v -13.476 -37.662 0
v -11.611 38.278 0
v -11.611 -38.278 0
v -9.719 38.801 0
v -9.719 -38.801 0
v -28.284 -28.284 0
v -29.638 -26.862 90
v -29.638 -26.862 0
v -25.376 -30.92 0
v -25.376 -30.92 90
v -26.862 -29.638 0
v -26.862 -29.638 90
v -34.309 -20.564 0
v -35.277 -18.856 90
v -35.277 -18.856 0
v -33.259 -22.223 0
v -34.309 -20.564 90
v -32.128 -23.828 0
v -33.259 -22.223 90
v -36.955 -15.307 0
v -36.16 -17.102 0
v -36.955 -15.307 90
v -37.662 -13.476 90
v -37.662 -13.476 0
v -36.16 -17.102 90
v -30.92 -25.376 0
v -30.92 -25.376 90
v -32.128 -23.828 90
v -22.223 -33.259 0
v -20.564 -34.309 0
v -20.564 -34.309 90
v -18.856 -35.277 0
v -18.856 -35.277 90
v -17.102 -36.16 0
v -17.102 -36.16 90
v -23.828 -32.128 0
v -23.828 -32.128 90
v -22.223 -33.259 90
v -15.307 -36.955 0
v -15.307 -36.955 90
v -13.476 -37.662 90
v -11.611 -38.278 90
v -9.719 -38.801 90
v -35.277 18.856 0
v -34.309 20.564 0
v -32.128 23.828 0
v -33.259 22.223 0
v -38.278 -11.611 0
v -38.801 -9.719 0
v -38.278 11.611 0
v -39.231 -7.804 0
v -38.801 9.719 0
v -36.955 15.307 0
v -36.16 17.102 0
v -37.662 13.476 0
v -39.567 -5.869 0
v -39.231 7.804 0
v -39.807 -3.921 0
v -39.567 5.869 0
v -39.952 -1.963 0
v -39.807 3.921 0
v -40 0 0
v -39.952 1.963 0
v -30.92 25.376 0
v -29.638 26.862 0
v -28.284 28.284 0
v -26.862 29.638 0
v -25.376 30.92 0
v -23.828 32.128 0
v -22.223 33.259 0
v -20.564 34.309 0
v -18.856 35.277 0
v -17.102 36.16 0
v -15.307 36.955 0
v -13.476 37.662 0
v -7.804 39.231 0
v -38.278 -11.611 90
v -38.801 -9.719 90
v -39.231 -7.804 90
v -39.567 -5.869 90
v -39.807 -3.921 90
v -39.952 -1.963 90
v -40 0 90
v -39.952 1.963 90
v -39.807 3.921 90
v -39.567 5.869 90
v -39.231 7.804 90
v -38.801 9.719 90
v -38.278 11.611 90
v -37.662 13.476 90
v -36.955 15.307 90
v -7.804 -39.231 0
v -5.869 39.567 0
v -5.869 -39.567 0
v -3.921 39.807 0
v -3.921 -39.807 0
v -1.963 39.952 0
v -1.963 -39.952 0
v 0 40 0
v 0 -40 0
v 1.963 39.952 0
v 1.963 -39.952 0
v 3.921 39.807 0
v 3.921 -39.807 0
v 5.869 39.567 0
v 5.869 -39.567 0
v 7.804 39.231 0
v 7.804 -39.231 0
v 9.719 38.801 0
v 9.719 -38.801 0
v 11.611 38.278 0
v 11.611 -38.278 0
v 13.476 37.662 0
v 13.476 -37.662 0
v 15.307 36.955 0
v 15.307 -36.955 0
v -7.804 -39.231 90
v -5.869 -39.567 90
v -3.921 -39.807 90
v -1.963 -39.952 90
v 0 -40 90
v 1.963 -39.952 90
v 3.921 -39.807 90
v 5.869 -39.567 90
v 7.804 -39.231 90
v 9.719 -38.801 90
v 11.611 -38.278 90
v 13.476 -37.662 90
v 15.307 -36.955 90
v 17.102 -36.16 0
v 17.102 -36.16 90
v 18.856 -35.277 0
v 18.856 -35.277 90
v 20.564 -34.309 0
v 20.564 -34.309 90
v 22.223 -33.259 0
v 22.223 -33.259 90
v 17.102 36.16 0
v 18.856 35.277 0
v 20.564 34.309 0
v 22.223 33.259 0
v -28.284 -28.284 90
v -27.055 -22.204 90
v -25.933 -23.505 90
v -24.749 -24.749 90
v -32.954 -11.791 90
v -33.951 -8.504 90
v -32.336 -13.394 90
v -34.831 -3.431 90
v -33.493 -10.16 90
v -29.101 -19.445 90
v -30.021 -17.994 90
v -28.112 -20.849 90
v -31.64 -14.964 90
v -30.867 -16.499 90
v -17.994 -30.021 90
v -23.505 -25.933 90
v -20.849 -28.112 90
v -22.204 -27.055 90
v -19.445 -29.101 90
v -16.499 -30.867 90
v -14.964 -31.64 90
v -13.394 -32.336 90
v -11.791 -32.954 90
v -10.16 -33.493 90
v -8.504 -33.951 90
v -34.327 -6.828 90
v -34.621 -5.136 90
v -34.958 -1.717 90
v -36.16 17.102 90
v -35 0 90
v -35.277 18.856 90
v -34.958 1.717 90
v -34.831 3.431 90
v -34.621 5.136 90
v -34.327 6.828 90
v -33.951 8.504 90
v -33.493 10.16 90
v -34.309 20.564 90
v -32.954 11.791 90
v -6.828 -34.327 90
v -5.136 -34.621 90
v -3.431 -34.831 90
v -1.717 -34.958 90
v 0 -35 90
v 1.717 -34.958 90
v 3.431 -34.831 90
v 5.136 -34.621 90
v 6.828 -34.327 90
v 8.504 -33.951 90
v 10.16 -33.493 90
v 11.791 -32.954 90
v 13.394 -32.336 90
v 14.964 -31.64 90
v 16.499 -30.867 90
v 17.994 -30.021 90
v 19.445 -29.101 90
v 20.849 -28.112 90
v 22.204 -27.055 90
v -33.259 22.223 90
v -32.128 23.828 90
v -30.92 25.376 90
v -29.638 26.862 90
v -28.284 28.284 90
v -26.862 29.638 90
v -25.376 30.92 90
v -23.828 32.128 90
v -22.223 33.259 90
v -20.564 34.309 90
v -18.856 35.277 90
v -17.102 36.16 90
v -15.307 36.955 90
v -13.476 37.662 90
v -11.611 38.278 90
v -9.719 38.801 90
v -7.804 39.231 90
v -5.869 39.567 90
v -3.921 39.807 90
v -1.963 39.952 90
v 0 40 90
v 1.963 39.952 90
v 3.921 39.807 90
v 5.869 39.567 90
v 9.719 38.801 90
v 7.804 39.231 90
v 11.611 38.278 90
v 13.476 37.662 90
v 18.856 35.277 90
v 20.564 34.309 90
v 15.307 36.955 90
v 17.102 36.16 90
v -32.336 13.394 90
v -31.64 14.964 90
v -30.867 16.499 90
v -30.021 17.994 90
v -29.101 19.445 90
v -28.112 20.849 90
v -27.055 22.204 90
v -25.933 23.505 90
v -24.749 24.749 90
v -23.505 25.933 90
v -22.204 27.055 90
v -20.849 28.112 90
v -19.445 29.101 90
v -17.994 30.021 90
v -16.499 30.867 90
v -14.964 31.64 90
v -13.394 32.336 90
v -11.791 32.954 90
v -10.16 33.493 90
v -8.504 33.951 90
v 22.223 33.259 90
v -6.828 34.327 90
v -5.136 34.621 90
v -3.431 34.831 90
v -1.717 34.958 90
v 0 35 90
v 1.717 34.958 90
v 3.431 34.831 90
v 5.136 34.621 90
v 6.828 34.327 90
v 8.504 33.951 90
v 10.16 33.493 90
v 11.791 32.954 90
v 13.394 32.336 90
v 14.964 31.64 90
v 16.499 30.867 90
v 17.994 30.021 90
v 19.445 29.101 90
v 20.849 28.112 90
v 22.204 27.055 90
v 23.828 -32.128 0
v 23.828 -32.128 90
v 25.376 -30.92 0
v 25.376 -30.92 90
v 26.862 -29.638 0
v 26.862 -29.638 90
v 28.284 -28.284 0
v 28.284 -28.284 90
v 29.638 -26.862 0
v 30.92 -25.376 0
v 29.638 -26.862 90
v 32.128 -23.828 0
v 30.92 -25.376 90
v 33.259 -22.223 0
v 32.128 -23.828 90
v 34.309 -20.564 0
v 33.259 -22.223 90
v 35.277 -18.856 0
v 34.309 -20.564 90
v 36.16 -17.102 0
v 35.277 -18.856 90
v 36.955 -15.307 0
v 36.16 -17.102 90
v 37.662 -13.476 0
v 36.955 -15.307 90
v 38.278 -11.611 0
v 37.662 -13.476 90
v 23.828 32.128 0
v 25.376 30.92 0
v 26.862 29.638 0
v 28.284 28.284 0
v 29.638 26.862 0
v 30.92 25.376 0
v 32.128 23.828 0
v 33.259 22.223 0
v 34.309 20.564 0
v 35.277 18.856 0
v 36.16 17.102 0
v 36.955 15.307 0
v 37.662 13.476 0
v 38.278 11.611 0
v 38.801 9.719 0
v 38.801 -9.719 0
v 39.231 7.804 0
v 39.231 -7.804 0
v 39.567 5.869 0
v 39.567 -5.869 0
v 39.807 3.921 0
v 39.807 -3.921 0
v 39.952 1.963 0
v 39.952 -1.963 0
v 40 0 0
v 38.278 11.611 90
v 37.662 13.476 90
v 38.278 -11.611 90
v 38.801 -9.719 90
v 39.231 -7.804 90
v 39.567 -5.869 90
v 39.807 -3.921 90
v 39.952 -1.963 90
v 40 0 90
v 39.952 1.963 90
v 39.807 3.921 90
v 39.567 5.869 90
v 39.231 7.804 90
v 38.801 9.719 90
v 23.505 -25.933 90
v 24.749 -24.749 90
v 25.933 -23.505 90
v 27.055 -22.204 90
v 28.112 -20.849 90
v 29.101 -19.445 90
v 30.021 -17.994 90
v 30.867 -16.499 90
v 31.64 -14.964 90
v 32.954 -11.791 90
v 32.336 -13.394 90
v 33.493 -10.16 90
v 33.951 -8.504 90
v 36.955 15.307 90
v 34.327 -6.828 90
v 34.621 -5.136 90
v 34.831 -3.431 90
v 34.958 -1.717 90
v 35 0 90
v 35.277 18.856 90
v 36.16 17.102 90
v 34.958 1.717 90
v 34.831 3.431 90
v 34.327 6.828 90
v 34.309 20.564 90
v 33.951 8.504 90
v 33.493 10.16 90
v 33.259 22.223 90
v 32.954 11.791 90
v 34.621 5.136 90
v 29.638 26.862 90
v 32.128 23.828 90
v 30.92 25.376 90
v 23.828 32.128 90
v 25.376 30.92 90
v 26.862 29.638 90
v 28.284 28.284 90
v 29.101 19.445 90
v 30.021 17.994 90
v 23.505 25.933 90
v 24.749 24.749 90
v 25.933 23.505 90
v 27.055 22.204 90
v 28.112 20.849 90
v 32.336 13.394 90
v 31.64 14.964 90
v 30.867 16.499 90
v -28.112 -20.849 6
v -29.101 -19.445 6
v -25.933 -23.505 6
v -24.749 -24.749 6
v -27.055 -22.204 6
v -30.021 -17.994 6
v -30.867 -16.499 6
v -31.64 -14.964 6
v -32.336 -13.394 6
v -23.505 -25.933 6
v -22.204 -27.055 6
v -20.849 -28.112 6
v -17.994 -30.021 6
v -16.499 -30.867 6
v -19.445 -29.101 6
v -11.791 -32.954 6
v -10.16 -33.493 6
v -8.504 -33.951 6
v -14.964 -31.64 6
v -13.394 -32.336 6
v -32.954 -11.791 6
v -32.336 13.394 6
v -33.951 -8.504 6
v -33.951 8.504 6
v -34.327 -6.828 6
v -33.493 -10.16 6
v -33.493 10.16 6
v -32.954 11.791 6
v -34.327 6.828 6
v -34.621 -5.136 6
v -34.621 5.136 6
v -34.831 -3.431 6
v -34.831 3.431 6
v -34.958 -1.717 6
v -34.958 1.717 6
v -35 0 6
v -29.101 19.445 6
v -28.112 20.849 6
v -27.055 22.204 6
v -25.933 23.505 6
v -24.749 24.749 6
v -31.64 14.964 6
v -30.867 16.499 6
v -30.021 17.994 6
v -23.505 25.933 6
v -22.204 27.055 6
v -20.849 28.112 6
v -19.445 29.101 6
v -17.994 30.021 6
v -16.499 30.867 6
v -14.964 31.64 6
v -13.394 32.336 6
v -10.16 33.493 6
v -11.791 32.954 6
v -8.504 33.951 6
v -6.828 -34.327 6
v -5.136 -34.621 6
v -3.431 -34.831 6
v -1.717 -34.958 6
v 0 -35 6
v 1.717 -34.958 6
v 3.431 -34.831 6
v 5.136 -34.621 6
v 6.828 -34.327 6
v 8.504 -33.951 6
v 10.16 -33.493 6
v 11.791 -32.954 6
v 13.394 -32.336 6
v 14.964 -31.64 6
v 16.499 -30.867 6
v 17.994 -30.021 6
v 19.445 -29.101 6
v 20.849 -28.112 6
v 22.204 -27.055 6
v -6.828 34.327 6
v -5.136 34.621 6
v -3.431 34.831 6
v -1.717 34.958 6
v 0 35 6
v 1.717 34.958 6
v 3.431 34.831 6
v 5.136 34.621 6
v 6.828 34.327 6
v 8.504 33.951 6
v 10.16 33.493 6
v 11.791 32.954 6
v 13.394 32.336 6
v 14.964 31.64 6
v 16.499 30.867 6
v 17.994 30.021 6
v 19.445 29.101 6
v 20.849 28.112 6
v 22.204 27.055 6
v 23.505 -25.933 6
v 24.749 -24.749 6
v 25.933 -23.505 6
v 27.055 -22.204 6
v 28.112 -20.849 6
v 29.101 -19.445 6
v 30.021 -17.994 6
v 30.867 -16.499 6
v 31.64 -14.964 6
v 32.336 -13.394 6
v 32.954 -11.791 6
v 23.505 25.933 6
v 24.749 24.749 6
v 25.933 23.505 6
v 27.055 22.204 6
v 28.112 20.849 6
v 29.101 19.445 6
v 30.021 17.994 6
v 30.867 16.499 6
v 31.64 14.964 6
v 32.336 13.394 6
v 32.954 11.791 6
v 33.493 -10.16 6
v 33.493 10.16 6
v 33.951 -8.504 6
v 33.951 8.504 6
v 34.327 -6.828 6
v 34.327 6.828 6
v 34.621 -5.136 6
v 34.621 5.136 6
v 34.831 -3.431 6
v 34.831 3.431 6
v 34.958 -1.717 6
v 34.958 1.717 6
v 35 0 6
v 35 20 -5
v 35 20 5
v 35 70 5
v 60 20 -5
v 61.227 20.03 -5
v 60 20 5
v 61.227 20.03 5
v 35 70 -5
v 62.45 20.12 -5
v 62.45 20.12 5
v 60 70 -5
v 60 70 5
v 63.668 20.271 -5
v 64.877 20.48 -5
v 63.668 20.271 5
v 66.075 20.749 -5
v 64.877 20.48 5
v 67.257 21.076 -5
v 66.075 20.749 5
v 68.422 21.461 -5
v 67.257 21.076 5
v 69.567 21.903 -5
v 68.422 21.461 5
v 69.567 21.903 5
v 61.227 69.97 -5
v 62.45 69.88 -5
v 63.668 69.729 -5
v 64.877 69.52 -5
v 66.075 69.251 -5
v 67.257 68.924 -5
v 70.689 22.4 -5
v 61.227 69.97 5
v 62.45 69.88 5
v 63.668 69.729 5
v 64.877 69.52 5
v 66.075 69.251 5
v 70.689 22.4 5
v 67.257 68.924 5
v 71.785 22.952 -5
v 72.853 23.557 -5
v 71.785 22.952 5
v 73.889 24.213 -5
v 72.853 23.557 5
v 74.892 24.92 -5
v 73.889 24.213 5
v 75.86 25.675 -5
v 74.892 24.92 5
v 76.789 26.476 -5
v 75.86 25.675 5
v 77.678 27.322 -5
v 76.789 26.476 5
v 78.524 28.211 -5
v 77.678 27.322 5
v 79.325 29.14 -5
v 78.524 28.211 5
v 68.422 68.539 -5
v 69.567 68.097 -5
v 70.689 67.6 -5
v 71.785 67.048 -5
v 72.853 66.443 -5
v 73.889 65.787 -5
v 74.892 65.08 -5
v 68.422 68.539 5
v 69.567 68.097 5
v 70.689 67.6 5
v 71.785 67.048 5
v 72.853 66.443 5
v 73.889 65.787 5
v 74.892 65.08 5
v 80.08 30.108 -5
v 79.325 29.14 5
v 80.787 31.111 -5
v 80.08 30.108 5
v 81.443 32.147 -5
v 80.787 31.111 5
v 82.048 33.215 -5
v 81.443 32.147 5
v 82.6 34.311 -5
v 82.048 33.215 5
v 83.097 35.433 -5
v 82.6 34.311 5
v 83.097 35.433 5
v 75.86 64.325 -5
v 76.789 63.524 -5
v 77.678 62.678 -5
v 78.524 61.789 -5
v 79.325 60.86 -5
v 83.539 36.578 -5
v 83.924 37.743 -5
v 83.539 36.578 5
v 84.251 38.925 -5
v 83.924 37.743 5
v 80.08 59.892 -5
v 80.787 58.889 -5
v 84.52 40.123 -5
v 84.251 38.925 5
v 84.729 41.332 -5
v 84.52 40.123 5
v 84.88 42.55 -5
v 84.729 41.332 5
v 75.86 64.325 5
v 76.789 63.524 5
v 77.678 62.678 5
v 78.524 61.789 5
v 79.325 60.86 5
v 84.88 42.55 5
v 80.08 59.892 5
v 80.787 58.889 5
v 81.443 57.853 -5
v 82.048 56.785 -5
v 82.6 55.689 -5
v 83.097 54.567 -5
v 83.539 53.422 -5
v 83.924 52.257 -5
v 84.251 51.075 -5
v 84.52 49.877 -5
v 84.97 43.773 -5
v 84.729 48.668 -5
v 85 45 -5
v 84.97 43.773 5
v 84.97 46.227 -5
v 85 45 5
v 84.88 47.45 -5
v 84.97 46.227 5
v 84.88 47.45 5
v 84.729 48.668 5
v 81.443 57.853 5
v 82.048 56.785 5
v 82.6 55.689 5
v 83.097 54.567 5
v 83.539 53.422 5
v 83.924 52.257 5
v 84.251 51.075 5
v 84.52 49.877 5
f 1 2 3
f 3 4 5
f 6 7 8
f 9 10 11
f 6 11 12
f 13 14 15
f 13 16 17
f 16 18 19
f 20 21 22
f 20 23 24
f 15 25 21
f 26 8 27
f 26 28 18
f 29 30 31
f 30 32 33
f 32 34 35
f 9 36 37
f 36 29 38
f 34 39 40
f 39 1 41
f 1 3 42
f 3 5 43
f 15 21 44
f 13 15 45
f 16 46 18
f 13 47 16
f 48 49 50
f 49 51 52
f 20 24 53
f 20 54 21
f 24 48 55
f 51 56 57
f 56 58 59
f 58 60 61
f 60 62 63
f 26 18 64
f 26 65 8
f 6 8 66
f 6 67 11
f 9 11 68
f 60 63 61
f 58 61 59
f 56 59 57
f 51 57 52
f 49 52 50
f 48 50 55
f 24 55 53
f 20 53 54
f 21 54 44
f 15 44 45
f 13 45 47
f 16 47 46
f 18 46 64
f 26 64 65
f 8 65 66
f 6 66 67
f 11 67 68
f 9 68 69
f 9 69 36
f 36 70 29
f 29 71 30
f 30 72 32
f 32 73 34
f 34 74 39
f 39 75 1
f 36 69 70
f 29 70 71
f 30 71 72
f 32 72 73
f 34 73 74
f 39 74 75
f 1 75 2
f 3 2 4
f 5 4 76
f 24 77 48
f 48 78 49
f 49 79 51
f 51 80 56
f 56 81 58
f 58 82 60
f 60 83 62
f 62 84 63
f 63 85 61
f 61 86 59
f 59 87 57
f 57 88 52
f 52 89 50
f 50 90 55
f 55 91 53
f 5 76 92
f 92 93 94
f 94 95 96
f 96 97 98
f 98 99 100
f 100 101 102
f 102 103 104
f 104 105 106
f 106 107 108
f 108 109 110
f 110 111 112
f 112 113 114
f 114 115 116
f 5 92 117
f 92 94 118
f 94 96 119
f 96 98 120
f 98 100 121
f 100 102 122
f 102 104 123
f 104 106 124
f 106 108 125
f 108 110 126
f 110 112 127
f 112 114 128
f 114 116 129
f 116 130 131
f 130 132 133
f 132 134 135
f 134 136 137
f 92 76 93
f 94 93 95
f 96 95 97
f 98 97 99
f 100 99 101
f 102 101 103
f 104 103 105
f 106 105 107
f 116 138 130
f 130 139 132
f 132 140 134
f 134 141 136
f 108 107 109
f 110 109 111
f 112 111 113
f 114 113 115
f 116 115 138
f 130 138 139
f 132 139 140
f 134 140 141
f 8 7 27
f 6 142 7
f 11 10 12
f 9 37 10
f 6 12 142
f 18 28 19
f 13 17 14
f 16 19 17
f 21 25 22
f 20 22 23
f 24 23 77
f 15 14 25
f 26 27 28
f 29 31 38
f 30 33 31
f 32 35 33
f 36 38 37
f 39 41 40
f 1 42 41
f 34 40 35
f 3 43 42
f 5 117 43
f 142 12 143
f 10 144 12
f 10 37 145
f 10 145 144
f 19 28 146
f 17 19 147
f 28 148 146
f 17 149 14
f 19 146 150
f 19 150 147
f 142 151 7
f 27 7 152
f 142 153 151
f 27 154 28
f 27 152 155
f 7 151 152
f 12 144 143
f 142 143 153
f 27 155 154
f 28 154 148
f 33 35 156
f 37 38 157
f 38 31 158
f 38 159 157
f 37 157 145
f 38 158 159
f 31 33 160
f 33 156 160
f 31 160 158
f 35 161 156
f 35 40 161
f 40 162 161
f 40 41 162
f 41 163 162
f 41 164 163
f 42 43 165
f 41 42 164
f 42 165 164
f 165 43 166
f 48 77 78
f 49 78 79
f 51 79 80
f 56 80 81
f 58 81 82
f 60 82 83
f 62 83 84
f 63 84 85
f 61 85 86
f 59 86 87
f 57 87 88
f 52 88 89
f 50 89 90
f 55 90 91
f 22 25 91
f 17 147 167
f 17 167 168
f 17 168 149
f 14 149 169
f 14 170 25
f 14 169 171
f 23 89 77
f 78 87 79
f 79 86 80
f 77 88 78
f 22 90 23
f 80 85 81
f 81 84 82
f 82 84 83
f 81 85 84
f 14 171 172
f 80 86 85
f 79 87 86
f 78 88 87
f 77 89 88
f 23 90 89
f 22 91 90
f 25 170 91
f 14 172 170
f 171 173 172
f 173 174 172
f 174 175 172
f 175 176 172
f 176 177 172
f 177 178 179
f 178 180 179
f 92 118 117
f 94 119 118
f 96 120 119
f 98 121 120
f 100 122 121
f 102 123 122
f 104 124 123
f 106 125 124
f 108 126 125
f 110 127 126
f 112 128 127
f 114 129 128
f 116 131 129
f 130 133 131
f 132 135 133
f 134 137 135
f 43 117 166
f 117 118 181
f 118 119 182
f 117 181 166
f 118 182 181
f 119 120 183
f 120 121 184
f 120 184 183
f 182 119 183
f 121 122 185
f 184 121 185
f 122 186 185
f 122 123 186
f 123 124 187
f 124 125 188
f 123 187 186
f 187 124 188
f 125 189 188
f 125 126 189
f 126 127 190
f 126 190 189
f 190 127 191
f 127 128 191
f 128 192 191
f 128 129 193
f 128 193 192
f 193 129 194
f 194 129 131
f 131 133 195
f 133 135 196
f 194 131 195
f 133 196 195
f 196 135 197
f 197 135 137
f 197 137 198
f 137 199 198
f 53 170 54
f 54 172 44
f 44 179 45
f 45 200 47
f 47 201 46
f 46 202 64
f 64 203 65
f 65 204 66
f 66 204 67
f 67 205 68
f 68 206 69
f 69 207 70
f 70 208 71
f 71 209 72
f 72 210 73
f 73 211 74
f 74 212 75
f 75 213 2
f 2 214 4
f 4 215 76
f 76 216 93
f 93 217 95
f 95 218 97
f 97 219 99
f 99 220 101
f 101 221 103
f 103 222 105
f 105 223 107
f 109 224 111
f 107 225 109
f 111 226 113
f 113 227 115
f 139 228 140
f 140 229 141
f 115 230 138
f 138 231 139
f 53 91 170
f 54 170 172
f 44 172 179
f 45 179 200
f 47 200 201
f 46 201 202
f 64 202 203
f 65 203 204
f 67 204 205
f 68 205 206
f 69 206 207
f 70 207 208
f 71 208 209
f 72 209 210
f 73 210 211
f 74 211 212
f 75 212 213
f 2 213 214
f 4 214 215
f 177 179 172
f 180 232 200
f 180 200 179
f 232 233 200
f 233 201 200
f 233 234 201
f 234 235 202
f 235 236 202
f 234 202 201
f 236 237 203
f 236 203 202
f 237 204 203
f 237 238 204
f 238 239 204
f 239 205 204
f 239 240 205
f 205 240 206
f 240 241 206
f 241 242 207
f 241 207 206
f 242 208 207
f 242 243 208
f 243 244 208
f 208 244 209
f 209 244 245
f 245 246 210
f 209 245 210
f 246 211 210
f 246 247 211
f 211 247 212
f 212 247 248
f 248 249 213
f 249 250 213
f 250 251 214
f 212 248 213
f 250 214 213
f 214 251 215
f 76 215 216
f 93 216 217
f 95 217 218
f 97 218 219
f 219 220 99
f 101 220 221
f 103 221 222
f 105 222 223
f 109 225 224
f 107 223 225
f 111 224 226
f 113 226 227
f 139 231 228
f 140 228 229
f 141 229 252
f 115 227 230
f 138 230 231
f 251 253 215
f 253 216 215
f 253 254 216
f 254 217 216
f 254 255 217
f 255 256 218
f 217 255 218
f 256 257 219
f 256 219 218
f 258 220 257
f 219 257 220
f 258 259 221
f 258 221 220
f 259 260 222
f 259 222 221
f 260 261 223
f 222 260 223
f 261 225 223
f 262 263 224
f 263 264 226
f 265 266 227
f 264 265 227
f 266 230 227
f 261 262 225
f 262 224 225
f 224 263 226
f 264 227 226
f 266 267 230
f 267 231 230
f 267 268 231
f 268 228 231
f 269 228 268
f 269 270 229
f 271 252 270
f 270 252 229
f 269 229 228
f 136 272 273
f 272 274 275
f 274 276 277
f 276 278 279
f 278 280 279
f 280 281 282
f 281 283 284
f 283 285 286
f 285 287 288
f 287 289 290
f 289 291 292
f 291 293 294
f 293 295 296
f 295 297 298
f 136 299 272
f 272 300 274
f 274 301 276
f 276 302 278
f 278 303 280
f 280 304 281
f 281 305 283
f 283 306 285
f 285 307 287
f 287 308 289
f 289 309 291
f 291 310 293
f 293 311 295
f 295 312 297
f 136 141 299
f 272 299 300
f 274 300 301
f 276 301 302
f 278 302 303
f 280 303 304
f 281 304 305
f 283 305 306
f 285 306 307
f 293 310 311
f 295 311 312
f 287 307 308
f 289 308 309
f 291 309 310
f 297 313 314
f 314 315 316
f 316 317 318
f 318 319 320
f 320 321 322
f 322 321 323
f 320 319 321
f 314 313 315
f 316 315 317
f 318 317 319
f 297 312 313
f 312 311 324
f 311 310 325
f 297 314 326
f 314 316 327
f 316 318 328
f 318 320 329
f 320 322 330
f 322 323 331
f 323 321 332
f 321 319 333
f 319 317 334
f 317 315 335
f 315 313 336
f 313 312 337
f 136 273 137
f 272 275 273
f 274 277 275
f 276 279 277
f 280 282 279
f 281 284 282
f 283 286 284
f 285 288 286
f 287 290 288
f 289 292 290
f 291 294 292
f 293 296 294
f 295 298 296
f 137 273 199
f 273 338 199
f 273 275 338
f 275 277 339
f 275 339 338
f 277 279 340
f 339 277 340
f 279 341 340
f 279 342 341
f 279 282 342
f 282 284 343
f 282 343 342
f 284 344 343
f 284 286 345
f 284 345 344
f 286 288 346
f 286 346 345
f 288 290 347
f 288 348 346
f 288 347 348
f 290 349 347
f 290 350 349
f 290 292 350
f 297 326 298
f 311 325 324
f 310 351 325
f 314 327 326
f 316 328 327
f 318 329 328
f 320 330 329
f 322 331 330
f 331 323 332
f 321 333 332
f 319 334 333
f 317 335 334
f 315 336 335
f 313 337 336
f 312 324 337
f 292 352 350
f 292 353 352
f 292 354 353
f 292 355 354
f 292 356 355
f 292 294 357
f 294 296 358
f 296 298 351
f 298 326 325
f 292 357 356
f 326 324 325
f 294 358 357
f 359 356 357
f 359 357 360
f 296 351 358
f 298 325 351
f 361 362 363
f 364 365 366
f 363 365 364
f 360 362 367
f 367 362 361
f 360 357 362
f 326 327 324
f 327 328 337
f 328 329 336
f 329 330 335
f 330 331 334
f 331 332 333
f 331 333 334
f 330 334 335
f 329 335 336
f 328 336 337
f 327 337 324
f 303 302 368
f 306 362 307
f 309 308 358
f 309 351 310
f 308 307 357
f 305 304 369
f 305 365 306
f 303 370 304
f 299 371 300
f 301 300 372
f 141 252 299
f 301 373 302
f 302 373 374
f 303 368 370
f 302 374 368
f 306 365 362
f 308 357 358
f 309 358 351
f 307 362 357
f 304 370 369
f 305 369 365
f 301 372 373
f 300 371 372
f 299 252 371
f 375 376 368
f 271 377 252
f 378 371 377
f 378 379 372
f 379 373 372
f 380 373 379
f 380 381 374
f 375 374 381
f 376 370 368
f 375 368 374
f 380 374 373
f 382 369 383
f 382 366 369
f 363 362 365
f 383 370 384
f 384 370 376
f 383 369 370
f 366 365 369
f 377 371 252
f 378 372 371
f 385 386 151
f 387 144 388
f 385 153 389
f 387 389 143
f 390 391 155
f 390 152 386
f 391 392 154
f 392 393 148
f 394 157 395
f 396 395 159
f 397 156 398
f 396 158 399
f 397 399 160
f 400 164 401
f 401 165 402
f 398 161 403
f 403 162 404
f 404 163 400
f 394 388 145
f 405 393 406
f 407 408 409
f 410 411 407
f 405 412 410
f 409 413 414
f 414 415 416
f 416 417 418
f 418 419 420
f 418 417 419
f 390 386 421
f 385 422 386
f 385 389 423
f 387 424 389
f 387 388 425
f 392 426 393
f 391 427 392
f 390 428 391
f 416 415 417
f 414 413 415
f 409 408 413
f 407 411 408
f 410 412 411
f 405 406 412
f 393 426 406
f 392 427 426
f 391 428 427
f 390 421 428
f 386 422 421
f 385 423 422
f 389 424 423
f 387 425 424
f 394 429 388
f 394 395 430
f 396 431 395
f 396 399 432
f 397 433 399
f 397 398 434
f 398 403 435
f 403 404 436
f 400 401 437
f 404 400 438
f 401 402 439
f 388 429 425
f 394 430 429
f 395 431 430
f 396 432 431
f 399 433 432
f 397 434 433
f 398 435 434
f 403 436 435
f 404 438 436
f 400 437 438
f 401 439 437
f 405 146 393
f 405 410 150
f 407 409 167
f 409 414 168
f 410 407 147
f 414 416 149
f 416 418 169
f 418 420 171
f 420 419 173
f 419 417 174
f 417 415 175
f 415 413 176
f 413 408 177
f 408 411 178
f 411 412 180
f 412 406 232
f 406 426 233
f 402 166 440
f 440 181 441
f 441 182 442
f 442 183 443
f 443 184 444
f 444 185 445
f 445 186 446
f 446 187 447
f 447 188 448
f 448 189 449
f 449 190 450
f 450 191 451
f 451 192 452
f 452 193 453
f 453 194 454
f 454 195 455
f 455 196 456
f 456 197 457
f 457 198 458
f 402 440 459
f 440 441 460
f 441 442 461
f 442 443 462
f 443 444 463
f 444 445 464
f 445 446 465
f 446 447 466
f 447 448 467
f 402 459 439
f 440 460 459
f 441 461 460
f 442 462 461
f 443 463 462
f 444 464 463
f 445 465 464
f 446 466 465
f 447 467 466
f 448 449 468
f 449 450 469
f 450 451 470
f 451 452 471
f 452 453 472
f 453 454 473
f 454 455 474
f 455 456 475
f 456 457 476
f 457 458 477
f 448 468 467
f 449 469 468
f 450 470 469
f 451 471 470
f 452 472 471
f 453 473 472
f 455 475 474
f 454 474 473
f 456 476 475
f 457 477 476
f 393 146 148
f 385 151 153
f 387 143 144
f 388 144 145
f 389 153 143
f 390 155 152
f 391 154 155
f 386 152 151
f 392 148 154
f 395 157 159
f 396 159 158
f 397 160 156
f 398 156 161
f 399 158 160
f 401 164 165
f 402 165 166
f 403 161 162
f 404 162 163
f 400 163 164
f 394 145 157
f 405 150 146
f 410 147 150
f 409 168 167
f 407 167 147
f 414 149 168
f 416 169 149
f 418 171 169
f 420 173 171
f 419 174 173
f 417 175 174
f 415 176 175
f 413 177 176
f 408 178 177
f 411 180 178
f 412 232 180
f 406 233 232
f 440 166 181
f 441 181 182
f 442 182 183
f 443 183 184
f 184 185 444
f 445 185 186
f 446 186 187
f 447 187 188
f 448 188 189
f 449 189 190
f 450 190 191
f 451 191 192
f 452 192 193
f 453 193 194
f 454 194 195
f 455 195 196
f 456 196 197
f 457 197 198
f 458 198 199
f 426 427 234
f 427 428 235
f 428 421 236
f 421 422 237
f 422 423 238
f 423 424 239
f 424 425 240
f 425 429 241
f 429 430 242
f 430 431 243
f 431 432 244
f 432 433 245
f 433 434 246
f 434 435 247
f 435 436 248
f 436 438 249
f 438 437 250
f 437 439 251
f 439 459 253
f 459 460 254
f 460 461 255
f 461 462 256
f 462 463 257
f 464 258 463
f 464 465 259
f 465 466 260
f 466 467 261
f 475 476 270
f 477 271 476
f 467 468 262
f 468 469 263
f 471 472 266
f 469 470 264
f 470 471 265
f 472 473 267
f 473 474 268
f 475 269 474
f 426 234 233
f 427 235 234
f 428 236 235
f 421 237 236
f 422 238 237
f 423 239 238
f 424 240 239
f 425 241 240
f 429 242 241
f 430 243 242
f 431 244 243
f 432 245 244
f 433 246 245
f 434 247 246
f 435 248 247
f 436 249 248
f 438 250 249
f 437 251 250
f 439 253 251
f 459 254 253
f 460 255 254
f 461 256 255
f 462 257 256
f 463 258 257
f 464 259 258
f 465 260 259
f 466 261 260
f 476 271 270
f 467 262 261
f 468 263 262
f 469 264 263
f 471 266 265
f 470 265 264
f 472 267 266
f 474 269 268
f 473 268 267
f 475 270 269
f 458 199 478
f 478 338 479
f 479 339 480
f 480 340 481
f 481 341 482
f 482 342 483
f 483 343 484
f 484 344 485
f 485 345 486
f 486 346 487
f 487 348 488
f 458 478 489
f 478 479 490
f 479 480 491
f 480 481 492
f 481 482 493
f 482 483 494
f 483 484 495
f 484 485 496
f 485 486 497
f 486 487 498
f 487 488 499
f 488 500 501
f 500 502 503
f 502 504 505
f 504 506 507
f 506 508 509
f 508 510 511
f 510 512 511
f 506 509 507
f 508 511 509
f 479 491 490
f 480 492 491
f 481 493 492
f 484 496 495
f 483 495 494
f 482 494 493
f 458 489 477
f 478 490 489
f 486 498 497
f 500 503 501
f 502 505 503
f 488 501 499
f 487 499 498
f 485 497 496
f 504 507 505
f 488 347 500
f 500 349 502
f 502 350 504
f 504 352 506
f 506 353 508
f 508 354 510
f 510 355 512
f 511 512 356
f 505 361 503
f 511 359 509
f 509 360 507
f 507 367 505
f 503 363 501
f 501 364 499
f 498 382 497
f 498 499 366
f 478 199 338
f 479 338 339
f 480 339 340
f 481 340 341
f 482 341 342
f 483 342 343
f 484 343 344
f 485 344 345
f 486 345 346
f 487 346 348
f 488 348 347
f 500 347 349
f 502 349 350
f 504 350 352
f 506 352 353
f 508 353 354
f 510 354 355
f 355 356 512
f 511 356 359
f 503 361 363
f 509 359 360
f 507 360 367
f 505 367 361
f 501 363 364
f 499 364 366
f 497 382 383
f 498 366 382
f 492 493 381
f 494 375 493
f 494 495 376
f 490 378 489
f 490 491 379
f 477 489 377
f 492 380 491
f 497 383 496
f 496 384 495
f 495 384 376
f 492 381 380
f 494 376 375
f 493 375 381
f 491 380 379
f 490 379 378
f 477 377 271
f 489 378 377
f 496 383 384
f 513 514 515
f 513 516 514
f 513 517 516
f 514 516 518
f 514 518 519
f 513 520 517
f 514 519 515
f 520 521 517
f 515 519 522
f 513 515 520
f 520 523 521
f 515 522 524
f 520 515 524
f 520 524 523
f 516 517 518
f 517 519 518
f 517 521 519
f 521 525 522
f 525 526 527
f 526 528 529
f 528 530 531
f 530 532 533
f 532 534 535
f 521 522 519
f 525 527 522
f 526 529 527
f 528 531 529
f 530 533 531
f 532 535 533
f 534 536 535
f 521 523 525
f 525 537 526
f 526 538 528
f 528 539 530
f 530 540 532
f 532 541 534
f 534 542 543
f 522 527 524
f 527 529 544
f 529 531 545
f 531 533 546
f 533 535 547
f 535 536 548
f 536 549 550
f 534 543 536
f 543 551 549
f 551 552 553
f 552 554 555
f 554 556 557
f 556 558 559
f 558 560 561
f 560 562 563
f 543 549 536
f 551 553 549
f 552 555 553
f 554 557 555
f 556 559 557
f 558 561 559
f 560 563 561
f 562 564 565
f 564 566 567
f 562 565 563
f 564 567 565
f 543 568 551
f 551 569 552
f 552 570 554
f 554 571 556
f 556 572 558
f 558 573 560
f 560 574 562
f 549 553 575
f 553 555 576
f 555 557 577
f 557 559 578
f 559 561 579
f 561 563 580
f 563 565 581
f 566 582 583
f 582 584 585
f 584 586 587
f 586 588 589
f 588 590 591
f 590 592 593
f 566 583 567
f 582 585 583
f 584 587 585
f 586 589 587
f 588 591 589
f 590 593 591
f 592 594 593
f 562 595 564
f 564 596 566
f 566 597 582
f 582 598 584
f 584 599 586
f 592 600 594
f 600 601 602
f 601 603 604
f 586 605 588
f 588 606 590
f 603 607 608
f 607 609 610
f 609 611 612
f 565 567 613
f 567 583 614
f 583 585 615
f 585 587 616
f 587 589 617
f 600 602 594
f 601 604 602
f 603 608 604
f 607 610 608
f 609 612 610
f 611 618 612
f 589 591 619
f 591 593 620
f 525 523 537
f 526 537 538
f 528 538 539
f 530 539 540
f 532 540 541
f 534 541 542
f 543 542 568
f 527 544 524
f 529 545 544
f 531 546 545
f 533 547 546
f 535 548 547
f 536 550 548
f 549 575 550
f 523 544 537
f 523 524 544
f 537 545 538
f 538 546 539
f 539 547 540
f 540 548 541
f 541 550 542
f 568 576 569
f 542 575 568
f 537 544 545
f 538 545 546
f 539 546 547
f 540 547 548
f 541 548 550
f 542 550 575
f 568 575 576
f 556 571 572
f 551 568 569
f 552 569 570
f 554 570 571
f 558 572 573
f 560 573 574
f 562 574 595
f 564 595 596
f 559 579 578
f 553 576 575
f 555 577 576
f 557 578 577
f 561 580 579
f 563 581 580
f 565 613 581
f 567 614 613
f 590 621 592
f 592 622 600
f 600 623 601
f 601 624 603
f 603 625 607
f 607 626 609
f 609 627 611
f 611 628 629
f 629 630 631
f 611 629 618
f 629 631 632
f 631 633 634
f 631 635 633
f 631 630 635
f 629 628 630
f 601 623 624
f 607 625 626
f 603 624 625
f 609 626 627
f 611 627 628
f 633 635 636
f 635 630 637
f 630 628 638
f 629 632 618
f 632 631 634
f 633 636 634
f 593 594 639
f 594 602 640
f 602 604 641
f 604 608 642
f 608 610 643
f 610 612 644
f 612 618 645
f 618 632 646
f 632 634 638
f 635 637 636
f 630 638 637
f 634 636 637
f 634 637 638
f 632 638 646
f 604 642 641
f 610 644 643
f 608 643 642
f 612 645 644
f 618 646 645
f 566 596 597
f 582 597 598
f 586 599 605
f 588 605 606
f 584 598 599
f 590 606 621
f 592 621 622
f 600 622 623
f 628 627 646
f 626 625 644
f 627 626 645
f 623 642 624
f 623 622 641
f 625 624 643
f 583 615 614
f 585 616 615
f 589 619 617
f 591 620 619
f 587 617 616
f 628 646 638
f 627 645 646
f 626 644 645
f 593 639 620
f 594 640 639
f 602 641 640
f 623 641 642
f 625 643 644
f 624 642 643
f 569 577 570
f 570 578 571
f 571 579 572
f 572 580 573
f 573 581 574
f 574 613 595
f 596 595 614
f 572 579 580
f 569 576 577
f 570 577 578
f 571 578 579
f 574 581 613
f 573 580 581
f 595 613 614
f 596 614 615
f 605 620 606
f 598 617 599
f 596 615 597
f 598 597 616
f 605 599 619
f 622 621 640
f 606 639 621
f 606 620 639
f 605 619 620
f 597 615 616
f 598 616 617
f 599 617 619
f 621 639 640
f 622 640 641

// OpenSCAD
$fn = 128;

outer_diameter = 80;
inner_diameter = 70;
height = 90;
bottom_thickness = 6;

module mug_body() {
    difference() {
        cylinder(
            d = outer_diameter,
            h = height
        );

        translate([0, 0, bottom_thickness])
            cylinder(
                d = inner_diameter,
                h = height - bottom_thickness + 1
            );
    }
}

module d_handle() {
    difference() {
        linear_extrude(height = 10, center = true)
            union() {
                translate([35, 20])
                    square([25, 50]);

                translate([60, 45])
                    circle(r = 25);
            }

        translate([40, -11, 30])
            cube([25, 22, 30]);
    }
}

union() {
    mug_body();
    d_handle();
}
